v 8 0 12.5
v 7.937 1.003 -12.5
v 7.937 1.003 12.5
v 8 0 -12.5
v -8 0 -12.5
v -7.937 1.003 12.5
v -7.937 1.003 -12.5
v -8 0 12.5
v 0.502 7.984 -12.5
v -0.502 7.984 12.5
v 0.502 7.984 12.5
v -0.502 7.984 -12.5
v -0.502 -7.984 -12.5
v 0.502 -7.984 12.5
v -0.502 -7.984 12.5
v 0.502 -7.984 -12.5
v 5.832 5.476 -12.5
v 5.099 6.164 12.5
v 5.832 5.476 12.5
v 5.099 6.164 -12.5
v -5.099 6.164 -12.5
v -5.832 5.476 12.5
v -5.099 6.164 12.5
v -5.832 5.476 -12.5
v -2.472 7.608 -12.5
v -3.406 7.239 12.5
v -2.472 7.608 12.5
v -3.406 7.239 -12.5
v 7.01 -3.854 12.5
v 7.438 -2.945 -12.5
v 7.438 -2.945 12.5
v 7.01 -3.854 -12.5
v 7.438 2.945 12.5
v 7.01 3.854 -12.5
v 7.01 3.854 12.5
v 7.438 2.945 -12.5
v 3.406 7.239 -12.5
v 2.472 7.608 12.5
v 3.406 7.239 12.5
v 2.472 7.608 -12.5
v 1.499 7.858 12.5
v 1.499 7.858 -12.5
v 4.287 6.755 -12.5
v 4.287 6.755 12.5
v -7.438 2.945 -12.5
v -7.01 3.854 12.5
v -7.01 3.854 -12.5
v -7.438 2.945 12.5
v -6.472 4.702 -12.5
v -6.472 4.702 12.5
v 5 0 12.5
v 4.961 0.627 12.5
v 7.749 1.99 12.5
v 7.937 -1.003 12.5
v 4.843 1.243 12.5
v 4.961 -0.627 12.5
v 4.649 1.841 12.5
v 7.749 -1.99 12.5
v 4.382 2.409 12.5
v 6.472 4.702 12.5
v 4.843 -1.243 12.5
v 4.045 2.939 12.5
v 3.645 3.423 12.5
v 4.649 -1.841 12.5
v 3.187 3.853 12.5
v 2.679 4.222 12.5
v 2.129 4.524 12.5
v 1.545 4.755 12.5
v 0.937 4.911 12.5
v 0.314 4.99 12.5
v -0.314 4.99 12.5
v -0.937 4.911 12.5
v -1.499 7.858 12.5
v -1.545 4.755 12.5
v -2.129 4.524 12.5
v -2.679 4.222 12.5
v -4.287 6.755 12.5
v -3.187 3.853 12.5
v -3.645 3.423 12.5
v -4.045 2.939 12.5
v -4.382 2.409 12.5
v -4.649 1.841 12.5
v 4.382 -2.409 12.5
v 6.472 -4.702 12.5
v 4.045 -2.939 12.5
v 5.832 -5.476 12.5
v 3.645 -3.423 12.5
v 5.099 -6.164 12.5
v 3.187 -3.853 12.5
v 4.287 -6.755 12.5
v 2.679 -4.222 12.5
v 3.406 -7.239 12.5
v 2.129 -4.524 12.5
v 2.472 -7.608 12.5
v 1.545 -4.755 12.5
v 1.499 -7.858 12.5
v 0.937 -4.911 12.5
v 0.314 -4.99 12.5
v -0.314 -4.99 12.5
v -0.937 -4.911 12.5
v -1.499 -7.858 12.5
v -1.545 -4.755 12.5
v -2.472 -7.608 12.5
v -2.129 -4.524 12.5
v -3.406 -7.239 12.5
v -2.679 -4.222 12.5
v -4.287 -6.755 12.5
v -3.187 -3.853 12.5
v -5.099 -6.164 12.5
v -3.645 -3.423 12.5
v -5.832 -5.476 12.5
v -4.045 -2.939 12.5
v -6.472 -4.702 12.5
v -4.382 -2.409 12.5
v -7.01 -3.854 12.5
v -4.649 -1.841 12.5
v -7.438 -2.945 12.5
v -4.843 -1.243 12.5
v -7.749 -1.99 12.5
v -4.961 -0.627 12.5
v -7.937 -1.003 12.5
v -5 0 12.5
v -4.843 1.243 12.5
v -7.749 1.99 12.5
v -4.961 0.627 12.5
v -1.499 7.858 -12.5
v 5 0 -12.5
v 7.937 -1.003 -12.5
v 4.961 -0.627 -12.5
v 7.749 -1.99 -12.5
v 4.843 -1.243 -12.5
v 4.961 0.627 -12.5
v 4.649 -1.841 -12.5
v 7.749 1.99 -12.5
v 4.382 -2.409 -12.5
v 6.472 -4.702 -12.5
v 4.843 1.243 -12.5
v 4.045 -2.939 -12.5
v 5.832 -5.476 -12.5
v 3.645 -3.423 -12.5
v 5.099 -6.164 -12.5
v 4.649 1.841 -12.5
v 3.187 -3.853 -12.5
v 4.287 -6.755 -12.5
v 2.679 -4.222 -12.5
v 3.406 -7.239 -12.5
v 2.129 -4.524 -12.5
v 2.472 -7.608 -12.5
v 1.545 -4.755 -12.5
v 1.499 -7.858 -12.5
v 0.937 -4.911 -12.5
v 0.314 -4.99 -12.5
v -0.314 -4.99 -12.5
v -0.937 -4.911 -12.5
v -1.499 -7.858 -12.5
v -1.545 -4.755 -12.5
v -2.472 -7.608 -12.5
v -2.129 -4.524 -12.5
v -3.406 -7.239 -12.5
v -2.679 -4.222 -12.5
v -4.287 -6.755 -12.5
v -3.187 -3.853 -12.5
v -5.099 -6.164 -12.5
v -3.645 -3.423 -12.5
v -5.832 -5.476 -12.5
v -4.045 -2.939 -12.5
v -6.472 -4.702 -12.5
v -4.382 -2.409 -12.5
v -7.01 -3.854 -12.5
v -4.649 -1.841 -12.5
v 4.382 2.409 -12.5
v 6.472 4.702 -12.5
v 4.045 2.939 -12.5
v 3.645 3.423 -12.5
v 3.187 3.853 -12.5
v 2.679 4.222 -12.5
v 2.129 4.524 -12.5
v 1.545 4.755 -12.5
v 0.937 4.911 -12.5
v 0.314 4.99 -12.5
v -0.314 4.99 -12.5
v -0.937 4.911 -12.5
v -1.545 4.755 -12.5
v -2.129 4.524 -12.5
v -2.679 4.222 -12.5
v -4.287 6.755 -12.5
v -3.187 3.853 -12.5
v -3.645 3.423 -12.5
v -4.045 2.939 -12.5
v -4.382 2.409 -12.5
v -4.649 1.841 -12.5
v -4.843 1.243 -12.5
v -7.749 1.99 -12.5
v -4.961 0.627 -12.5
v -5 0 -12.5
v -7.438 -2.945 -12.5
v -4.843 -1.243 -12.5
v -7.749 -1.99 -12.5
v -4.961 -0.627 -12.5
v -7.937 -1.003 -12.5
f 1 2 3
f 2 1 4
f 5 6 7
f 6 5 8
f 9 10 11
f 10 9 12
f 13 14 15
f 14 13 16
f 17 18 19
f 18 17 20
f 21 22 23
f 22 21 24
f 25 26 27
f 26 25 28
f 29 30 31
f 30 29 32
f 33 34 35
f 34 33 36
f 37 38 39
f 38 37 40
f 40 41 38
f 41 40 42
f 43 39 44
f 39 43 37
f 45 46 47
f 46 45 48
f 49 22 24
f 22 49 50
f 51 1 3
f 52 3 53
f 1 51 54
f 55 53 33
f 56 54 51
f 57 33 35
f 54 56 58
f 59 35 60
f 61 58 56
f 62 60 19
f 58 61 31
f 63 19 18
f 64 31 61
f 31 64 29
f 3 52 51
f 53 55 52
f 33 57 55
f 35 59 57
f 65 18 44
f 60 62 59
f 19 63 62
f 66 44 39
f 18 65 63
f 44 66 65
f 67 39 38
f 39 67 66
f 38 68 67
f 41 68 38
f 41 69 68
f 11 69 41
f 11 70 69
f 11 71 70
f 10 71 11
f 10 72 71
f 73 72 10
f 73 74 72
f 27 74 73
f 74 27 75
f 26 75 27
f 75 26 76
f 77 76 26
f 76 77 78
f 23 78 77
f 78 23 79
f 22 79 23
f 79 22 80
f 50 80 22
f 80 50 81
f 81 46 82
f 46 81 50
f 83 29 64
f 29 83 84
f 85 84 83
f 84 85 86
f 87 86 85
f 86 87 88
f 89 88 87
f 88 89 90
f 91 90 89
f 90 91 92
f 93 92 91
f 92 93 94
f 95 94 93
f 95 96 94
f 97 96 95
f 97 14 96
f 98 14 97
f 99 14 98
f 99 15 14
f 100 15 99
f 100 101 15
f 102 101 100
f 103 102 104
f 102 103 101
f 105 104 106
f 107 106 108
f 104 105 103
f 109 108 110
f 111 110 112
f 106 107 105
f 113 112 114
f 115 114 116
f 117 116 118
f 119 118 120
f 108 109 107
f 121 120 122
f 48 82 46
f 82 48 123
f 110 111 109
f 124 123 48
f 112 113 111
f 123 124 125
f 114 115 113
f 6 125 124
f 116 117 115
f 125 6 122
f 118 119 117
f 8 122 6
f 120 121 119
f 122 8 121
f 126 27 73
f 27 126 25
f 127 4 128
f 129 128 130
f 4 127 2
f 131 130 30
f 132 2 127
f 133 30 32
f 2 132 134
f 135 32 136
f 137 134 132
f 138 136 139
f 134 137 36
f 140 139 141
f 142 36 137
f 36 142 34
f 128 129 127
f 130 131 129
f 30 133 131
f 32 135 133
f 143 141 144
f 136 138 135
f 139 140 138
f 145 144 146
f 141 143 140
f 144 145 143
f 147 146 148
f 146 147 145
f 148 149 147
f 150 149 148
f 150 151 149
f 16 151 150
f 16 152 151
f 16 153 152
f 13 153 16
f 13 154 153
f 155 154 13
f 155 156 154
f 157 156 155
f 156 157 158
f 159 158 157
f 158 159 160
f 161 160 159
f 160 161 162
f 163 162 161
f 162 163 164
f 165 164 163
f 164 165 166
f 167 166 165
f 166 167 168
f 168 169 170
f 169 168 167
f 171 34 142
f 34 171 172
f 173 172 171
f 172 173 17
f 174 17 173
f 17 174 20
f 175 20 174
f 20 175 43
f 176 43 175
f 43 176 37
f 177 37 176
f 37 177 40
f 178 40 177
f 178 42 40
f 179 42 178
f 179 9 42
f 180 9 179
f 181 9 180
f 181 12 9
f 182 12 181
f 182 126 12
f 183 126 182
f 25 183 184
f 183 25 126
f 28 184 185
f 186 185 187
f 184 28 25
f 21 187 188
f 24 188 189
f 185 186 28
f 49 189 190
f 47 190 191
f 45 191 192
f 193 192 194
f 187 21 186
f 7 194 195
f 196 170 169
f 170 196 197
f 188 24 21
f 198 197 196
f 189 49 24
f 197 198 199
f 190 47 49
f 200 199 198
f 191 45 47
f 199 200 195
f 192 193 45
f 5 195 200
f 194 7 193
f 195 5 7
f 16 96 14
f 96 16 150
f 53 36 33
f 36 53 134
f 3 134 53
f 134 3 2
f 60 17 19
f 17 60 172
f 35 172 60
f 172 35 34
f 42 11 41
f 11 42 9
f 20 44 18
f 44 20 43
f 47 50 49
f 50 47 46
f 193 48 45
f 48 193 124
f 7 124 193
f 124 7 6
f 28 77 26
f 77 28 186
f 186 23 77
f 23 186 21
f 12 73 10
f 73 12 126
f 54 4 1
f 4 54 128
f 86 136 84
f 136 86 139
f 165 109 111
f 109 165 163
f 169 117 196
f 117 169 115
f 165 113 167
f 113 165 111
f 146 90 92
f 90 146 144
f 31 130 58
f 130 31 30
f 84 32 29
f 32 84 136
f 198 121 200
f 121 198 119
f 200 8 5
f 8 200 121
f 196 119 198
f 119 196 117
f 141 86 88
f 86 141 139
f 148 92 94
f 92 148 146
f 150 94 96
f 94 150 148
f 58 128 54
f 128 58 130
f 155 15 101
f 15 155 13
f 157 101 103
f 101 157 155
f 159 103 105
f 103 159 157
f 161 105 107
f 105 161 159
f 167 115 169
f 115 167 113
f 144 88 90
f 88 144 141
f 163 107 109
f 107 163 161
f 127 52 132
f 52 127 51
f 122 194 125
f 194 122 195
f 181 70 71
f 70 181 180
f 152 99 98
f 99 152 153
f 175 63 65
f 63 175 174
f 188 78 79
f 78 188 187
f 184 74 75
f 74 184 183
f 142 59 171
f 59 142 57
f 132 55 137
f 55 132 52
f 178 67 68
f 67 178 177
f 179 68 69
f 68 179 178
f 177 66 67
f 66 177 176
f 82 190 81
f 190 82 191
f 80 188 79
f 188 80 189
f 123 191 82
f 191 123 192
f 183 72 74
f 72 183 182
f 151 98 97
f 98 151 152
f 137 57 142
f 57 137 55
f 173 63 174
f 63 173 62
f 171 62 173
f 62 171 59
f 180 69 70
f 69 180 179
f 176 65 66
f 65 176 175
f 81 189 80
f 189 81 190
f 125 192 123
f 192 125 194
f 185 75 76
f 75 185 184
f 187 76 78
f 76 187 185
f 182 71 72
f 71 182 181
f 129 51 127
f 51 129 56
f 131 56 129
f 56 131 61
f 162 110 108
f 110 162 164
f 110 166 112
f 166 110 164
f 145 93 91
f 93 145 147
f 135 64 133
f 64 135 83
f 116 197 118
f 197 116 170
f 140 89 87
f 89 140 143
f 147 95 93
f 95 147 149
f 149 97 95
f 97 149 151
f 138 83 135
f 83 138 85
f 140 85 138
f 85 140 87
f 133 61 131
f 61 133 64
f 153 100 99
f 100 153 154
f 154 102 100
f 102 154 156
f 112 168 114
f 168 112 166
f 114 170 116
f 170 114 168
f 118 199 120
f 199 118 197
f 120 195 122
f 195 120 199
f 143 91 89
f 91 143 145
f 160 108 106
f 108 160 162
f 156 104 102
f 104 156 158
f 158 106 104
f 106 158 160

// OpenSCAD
$fn = 50;


difference() {
	union() {
		translate(v = [0, 0, -12.5000000000]) {
			cylinder(h = 25, r = 8.0000000000);
		}
	}
	union() {
		translate(v = [0, 0, -100.0000000000]) {
			cylinder(h = 200, r = 5.0000000000);
		}
	}
}
